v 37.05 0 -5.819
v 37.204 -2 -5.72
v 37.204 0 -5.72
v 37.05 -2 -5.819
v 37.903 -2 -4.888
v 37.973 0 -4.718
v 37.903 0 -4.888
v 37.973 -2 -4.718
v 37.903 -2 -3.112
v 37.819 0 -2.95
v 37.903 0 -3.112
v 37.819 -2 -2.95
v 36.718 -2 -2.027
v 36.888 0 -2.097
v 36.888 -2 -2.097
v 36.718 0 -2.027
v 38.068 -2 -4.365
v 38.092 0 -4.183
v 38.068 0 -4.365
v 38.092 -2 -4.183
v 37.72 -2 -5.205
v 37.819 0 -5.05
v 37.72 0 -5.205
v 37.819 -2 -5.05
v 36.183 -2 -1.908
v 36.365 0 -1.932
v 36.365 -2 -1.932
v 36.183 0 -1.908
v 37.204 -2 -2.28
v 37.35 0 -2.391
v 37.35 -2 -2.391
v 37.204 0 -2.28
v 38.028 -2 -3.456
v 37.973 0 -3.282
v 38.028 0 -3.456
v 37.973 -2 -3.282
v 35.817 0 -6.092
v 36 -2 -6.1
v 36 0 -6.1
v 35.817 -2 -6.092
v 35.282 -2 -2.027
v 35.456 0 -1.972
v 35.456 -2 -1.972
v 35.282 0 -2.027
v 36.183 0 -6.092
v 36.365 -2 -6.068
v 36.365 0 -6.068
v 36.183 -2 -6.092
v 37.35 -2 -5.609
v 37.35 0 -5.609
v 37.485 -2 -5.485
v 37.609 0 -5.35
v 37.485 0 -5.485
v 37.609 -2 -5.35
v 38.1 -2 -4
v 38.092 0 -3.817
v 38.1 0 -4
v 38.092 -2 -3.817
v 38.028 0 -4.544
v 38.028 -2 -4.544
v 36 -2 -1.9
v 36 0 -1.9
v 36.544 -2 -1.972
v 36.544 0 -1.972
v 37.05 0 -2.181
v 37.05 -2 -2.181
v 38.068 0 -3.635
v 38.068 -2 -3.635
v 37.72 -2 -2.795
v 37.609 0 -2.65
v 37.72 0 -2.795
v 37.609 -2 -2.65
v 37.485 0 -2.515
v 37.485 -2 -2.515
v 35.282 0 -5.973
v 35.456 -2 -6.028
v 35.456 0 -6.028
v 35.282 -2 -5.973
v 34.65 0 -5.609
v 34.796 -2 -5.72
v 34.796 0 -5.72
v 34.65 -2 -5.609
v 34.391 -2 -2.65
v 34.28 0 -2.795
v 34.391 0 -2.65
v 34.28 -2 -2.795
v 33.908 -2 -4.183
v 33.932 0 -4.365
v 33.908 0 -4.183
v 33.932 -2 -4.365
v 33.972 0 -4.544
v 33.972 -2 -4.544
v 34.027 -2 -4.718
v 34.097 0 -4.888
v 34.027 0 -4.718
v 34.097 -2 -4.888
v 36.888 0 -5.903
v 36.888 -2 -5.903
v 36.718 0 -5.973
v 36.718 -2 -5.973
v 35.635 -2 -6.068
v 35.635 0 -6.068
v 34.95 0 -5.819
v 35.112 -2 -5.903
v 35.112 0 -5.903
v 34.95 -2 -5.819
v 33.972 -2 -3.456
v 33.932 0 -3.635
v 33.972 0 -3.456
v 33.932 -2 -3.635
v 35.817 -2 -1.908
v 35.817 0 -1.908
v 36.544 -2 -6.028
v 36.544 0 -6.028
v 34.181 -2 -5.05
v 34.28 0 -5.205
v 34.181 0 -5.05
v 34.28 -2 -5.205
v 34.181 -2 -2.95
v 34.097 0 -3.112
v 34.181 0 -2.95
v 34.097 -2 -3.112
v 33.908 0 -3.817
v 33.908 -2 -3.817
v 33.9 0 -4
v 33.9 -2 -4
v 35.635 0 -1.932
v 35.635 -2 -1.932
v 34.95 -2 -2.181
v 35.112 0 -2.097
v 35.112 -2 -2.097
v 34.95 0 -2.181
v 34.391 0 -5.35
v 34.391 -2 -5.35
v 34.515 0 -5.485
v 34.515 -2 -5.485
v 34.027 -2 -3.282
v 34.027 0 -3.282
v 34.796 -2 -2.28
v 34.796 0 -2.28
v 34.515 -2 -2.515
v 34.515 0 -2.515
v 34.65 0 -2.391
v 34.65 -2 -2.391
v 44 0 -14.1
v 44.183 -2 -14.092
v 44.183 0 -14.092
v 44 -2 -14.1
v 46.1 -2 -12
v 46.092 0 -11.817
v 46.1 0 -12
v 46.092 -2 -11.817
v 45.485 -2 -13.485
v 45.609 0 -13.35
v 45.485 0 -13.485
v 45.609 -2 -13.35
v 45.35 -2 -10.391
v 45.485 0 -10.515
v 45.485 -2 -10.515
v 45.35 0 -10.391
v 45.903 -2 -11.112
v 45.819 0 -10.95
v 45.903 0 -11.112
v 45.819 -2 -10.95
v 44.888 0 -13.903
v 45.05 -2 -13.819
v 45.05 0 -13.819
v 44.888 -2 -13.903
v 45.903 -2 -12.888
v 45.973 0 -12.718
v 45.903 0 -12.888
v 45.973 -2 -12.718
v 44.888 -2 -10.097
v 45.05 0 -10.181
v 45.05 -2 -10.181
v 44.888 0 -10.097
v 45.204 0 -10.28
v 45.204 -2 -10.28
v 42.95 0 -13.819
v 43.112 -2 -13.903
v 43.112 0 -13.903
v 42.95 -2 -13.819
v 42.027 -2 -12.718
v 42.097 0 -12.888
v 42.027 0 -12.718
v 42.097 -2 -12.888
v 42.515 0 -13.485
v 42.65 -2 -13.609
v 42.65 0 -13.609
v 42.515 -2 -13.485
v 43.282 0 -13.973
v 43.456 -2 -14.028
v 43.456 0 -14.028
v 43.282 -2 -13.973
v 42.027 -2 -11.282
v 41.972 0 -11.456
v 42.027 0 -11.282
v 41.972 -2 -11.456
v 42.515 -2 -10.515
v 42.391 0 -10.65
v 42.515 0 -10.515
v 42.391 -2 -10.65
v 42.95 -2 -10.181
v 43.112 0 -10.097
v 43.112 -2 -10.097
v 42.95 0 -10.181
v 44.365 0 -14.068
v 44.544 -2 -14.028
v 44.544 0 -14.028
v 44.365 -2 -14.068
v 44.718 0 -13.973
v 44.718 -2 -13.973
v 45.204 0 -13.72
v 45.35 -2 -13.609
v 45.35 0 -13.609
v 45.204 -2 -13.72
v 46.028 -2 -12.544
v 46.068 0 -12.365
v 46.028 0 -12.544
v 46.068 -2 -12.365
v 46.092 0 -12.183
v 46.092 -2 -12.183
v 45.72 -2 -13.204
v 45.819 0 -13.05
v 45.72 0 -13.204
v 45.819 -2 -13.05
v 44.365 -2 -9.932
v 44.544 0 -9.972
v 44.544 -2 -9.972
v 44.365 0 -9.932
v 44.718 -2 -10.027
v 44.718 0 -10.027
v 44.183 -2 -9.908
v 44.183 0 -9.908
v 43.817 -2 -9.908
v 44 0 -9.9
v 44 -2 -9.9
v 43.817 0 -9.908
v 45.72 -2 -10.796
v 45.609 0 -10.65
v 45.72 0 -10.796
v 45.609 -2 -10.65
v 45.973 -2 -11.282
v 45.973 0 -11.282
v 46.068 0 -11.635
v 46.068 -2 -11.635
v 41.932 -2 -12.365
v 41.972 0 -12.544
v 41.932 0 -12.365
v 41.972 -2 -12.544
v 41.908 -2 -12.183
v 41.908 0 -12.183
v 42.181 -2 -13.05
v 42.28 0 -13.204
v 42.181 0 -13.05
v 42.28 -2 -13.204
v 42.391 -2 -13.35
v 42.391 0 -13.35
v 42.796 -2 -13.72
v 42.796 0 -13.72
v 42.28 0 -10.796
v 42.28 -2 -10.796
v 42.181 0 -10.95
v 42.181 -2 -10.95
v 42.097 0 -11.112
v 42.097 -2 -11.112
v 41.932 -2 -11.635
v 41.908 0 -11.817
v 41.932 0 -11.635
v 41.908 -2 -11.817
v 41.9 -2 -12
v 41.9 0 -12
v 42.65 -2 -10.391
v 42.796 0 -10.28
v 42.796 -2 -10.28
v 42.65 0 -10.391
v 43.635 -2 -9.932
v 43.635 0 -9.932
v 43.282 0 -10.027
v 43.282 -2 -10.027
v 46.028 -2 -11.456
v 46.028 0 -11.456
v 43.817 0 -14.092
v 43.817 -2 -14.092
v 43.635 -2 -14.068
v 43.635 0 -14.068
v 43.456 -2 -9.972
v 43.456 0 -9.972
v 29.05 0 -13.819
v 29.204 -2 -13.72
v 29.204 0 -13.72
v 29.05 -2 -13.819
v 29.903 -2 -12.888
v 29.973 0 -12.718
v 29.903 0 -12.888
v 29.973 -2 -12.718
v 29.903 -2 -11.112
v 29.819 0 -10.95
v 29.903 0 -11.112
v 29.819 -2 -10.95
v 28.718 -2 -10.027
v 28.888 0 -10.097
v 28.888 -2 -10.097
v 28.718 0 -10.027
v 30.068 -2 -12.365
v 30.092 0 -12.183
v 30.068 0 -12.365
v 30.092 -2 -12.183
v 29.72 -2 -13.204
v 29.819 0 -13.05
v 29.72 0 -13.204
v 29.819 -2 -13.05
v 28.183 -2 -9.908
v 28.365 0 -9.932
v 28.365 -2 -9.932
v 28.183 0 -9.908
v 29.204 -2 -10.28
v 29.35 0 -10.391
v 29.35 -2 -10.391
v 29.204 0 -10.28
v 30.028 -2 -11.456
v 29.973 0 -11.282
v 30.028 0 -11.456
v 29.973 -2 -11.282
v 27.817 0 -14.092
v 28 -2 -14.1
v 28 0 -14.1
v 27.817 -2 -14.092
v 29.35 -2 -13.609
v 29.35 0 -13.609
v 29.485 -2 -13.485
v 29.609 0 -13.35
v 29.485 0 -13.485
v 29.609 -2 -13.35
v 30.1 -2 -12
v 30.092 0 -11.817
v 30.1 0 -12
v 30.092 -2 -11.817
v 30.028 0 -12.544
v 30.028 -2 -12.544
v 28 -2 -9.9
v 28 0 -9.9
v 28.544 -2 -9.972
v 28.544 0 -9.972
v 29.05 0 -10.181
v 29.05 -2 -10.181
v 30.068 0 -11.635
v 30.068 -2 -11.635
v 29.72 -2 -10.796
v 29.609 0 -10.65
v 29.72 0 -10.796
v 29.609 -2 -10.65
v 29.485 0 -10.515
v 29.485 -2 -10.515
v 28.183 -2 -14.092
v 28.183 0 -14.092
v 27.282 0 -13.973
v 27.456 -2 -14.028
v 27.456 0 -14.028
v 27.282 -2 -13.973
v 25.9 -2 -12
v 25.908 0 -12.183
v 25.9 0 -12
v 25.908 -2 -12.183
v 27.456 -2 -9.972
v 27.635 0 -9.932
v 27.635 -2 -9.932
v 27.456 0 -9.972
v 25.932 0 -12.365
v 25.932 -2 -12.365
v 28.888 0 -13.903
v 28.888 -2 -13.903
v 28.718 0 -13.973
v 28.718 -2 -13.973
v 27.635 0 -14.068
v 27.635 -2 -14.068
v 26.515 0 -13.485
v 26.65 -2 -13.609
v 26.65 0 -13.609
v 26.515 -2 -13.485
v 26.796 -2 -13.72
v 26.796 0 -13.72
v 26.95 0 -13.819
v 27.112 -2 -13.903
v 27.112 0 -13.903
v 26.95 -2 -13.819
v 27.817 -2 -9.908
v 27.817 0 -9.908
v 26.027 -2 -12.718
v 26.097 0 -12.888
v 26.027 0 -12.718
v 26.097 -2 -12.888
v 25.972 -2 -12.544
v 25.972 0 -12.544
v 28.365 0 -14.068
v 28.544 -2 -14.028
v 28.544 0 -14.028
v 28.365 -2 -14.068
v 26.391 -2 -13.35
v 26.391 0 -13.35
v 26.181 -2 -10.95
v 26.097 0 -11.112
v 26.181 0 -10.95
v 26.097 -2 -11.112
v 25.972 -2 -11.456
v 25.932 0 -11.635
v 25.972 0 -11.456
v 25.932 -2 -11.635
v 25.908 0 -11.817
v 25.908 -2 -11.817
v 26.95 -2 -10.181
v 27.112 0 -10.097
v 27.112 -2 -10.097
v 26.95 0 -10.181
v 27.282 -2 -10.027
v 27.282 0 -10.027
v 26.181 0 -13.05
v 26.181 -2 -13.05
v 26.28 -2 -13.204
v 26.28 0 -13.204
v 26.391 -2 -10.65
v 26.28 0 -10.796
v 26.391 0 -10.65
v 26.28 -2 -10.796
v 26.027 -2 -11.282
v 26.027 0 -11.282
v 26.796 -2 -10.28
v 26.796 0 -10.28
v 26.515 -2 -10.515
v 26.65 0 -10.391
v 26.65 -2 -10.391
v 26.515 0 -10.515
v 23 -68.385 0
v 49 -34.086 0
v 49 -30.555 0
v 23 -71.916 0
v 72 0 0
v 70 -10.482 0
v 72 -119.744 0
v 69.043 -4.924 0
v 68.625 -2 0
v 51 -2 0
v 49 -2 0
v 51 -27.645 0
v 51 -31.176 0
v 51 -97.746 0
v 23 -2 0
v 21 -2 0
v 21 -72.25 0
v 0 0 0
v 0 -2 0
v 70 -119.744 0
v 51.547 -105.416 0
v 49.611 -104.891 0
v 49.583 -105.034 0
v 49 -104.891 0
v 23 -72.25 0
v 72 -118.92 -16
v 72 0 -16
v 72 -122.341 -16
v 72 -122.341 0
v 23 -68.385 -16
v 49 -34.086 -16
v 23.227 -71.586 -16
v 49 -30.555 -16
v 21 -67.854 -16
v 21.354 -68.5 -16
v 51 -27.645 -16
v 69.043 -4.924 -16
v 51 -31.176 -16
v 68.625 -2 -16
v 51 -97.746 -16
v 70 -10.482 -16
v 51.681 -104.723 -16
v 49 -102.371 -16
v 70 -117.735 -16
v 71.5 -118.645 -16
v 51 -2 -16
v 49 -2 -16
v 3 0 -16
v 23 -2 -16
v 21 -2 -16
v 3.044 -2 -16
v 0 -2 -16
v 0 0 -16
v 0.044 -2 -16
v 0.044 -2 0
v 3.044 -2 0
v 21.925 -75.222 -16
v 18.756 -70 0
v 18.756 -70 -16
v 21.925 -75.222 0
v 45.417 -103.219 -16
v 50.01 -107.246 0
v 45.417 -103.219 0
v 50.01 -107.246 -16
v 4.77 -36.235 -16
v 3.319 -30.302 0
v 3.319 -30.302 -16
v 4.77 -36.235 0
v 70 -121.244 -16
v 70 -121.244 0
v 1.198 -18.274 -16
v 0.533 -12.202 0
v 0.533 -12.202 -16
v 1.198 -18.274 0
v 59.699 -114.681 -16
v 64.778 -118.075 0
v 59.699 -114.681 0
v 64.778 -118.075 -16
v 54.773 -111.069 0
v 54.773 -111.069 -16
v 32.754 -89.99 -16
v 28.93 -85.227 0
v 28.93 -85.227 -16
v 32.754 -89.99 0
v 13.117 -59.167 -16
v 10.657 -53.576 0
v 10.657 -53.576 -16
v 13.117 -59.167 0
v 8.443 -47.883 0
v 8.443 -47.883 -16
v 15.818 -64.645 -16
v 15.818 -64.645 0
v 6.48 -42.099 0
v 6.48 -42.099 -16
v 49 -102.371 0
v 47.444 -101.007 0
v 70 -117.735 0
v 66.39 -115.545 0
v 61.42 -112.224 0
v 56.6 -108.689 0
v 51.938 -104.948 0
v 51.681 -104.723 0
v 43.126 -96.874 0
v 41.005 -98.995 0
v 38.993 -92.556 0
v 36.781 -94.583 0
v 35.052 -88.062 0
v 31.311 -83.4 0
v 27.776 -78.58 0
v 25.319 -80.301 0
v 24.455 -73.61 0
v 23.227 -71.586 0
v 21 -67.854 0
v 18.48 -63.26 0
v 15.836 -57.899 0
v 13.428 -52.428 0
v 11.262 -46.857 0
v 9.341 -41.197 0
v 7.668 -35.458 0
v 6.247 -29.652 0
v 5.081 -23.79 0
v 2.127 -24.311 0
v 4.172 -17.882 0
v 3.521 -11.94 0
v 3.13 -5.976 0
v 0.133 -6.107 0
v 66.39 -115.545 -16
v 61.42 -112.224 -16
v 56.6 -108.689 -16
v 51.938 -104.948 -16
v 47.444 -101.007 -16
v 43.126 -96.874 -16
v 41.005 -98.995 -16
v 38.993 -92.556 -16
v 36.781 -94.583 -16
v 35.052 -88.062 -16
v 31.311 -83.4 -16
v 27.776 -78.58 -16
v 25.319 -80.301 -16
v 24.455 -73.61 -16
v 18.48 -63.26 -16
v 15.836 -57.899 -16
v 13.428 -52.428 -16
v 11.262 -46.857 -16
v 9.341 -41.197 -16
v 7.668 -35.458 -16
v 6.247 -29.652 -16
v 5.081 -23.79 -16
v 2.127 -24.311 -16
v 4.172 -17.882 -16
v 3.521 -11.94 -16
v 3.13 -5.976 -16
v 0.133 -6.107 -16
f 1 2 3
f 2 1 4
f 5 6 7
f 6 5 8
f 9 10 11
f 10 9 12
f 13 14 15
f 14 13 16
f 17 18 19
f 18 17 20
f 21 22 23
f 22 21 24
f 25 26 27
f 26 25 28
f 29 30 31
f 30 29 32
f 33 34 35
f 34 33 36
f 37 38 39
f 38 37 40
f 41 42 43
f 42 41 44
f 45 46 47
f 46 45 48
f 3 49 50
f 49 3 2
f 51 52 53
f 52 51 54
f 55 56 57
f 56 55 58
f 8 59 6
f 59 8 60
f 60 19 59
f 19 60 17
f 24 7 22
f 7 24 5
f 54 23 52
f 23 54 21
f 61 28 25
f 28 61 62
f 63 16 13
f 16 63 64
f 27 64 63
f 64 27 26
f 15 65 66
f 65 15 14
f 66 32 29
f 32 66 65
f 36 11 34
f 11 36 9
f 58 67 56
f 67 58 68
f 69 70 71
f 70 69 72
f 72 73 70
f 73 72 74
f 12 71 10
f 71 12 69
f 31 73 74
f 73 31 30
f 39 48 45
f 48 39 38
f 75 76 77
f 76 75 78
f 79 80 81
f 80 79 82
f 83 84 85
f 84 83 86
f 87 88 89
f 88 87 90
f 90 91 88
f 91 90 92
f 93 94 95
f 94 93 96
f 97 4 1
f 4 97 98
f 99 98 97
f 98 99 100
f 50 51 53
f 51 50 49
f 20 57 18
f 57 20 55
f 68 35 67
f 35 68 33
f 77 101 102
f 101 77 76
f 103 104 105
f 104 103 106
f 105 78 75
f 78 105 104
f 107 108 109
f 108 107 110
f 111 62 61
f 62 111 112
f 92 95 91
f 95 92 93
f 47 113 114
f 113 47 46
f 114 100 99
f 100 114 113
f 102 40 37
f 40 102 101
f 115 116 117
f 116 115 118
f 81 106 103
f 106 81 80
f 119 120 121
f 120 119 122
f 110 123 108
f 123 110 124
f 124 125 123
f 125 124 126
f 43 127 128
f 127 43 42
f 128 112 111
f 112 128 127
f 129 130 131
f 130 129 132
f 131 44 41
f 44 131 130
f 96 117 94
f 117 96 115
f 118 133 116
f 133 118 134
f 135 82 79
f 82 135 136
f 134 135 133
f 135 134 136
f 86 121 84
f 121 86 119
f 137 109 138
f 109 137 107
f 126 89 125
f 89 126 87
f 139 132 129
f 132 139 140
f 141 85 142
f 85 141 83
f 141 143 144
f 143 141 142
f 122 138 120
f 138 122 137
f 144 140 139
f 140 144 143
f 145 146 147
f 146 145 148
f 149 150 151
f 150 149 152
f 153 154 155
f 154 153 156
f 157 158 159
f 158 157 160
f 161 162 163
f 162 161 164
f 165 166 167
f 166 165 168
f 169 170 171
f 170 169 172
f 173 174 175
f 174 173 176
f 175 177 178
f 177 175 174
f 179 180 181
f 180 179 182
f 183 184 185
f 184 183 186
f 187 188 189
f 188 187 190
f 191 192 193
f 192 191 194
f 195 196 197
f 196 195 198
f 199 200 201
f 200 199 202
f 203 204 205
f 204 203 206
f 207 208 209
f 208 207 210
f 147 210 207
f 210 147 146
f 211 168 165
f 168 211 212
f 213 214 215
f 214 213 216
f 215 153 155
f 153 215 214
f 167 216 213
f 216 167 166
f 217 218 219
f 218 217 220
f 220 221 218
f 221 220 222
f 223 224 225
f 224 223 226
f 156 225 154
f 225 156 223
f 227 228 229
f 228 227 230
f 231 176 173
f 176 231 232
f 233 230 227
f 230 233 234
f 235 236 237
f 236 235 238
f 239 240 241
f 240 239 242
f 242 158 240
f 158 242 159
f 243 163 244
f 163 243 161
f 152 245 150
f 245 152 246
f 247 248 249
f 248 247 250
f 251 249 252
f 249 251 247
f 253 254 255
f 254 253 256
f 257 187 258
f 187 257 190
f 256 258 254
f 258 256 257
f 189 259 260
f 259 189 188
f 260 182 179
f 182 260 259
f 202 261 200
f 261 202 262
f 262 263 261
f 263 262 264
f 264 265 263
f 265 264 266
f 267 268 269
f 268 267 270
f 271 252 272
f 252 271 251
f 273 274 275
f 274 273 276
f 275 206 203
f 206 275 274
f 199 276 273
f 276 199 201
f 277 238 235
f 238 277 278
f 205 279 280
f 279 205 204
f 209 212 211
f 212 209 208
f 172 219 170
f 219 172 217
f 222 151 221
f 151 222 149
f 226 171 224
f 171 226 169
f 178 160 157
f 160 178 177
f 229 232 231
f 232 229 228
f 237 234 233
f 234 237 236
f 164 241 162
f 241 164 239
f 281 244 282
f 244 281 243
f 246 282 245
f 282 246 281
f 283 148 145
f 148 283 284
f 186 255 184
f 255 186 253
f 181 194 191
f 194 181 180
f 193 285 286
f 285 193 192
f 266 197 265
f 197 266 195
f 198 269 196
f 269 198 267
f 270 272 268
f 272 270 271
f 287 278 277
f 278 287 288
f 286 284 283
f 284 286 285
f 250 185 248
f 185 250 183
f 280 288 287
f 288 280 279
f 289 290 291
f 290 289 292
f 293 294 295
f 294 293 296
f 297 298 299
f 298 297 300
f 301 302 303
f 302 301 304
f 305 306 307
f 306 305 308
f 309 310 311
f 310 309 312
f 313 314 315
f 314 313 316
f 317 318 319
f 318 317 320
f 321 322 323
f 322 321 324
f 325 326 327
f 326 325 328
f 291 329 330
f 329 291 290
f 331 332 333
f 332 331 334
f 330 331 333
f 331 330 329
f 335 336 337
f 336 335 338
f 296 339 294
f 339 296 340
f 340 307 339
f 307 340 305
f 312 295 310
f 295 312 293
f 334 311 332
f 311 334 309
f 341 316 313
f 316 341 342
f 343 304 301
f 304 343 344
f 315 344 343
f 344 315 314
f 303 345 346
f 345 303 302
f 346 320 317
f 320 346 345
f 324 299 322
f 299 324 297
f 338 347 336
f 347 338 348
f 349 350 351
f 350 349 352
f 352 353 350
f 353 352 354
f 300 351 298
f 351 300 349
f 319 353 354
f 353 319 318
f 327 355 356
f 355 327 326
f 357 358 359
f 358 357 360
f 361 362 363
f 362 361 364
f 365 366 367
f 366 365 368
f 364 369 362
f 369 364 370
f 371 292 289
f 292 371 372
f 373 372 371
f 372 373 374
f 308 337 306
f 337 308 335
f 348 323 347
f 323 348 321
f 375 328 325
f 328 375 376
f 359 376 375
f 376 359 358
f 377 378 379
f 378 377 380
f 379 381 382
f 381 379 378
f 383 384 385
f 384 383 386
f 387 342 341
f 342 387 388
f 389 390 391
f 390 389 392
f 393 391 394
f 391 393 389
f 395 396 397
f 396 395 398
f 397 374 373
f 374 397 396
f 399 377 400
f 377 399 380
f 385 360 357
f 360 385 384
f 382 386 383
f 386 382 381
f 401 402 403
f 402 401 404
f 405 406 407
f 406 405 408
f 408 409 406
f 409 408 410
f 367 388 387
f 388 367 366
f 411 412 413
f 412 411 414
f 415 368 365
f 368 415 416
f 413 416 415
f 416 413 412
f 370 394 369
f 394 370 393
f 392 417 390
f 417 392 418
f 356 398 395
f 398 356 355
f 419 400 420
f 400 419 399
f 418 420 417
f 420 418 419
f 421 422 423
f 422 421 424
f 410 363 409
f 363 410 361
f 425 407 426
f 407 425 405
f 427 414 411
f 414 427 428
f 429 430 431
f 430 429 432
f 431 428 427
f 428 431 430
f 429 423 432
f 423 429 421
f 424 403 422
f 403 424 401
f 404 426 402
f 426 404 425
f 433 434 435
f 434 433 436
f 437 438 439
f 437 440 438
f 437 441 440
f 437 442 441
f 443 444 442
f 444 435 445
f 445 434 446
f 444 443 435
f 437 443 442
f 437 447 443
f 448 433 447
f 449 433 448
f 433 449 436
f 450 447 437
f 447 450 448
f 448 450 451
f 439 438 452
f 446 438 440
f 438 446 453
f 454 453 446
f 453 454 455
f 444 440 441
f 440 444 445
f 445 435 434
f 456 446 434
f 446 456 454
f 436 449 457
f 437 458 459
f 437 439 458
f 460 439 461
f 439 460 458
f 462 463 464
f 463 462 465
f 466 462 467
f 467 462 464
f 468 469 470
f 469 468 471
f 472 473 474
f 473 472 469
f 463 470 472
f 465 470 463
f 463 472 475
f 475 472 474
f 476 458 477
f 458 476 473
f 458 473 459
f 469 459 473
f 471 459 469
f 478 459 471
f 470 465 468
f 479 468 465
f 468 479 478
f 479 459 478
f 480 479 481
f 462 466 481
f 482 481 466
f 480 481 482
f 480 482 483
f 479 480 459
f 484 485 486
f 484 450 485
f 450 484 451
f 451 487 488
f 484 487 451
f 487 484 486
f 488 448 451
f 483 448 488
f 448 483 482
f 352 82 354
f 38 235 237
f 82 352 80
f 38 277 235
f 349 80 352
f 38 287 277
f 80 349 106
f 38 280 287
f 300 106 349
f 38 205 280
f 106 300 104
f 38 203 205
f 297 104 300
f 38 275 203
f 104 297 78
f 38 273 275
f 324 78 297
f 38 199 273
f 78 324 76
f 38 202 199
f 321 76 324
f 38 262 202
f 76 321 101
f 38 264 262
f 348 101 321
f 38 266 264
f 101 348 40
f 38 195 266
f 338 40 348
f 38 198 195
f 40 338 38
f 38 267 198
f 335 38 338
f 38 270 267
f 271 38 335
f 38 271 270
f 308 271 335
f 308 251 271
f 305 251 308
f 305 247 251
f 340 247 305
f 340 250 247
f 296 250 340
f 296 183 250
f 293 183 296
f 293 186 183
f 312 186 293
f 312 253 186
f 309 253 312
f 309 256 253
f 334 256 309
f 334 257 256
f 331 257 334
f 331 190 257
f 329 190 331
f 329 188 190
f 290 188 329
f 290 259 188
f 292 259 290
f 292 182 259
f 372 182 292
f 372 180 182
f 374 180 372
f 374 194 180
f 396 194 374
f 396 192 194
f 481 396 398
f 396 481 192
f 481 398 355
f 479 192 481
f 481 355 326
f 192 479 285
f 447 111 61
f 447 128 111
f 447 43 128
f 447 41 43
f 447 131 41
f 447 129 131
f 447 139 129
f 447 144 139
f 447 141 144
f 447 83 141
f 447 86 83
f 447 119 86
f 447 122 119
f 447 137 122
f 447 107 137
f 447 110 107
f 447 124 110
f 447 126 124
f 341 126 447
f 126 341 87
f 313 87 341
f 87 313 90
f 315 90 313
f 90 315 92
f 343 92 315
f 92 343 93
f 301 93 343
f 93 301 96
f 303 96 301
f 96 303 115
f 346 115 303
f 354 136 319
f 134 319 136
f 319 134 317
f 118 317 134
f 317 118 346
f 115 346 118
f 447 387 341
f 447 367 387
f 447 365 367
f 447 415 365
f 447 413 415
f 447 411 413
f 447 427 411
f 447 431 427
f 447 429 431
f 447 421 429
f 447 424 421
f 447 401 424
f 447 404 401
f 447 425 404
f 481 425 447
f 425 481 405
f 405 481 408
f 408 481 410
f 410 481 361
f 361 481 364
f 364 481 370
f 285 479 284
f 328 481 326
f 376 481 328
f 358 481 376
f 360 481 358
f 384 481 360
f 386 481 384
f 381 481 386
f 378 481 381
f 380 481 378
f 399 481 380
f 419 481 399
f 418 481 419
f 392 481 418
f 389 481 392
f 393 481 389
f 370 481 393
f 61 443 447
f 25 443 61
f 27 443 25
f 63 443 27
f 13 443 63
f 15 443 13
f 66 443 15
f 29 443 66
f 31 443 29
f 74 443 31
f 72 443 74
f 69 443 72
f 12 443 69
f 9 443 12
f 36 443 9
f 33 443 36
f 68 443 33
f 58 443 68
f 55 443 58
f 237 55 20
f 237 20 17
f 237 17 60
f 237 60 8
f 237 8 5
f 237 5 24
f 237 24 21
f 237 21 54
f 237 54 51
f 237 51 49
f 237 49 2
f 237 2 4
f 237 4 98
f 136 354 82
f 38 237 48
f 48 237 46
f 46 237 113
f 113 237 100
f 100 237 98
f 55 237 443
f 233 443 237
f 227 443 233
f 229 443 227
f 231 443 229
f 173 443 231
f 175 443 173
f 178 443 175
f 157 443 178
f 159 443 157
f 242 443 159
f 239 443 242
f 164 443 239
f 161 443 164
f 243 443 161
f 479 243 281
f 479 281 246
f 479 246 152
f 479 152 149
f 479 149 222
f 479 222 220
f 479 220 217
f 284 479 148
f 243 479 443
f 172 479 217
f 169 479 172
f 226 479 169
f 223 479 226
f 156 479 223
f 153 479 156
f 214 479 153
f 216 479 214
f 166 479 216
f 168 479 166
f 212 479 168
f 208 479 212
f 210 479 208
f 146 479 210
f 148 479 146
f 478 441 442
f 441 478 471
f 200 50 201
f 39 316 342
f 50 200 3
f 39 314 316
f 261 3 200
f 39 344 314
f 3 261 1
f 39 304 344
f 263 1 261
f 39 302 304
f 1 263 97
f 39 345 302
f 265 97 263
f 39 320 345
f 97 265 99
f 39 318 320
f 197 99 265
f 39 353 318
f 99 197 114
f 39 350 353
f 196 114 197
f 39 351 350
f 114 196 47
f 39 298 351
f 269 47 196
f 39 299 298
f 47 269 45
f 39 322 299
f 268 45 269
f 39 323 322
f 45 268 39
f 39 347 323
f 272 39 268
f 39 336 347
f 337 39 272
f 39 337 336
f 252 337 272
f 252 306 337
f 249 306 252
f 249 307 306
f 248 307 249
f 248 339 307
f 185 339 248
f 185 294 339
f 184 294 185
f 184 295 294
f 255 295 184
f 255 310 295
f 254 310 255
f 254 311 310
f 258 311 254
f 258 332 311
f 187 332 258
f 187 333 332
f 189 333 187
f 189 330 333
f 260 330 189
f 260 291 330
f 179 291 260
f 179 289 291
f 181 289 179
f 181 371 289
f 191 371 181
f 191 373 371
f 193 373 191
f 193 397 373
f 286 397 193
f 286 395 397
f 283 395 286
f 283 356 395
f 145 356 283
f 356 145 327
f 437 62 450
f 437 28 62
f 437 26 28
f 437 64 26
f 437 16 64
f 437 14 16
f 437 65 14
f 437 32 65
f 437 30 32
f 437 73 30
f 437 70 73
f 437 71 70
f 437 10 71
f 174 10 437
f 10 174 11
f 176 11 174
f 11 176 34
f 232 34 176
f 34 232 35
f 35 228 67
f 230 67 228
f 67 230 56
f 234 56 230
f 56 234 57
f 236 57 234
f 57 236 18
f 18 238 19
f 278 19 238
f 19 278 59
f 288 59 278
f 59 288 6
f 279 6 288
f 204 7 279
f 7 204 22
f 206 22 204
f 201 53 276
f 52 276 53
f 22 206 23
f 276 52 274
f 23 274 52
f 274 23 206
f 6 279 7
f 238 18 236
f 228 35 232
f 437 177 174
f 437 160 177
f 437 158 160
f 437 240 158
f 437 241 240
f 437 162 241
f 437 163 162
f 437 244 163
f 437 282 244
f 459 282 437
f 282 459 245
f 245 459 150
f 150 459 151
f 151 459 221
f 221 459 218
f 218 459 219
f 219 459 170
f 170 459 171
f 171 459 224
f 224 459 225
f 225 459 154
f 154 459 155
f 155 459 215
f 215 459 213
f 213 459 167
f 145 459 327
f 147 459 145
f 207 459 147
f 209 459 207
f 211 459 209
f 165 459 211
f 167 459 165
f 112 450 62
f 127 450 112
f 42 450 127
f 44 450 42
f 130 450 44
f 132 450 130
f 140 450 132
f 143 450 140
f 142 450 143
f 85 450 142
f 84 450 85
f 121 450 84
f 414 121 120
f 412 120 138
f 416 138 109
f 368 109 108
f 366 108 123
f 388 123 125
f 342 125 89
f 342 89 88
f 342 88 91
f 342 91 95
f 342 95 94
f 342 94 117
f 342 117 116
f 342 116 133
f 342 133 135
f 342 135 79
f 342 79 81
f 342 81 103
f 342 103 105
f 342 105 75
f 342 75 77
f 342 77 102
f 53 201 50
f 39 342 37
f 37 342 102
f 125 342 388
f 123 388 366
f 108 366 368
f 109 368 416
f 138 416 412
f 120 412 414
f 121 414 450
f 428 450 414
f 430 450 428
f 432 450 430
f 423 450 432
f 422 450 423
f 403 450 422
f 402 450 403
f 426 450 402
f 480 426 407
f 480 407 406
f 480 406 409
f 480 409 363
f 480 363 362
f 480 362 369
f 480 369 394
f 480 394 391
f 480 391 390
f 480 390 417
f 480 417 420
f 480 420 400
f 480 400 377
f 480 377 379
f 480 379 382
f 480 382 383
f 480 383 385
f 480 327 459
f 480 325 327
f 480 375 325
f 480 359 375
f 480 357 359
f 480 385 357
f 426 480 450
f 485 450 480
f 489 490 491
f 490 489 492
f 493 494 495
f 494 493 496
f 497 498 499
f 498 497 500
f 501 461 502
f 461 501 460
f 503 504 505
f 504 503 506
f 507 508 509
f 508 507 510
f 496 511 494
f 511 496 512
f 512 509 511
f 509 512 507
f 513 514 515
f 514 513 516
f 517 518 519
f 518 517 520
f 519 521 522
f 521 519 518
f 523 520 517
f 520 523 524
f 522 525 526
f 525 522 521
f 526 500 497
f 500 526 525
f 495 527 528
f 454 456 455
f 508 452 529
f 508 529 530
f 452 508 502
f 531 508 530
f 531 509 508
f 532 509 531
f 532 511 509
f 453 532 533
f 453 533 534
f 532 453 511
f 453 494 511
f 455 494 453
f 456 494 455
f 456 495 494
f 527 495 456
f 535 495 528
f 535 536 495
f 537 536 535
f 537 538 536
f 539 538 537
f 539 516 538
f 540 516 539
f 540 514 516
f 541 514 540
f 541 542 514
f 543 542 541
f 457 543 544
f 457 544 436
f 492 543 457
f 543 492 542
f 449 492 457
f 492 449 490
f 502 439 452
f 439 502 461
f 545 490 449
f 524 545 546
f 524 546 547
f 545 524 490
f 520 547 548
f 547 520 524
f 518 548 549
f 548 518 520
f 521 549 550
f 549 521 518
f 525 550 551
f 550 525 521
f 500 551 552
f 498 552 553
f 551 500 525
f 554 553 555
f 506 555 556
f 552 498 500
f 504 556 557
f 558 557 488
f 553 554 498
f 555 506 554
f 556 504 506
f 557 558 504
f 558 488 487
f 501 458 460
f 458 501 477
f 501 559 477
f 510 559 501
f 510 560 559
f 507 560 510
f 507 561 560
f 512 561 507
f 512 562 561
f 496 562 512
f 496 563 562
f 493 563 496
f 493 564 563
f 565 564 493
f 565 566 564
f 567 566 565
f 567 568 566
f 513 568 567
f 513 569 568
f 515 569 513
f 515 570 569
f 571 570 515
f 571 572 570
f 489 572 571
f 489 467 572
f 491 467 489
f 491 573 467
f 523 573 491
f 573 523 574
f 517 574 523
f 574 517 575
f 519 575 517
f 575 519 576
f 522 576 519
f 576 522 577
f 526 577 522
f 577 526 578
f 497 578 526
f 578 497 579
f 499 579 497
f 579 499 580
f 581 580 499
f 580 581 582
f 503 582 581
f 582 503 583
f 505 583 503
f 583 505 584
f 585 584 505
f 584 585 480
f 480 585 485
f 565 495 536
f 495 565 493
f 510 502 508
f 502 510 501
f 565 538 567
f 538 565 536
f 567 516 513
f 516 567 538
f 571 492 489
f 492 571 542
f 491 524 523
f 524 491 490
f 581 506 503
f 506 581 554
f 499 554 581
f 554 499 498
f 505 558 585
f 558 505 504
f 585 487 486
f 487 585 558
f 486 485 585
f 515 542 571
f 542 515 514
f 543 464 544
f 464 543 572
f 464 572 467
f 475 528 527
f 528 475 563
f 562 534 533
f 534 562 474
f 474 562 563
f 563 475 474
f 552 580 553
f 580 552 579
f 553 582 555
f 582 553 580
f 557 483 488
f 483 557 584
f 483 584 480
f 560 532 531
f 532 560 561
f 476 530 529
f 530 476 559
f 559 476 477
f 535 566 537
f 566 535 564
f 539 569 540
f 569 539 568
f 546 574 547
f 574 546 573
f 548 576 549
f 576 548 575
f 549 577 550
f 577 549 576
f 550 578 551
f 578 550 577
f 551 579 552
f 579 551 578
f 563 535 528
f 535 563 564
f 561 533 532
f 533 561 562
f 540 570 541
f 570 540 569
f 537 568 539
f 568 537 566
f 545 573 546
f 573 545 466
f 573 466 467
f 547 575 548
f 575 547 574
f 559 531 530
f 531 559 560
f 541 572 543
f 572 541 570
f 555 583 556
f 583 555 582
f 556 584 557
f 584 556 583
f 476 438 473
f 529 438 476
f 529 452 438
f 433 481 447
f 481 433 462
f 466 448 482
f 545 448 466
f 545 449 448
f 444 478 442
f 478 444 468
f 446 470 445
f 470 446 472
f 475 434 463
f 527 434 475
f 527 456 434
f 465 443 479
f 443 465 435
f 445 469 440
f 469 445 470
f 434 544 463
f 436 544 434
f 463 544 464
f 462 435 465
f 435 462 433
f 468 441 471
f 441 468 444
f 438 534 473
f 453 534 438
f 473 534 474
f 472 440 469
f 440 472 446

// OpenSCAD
holeDepth = 4;
holeOffset = 8;
holeRadius = 2.1;
holeFacets = 72;

thickness = 2;
bracketWidth = 16;
bracketLength = 72;

railLength=120;
railRadius = 140;
railThickness = 3;
railFacets = 144;



scaleFactor = 1;
rotate([0,90,0])
union() {
   translate([0,-thickness, 0])
        Bracket();
    Top(bracketLength - thickness);
    Top(21);
    Top(49);
    
    translate([0, 0, bracketLength-thickness])
        rotate([34.5,0,0])
            translate([0,-86,0])
                cube([bracketWidth, 86, thickness]);
    
    translate([0, 0, bracketLength-thickness])
        rotate([11,0,0])
            translate([0,-107,0])
                cube([bracketWidth, 107, thickness]);
    Rail();

}

module Bracket() {
    difference() {
        cube([bracketWidth, thickness, bracketLength]);   
    
        translate([10+(bracketWidth-12)/2,
                  thickness/2, bracketLength/2])
            rotate([90,0,0])
                Holes();
    }
}

module Top(z) {
    topLength = sqrt(railRadius * railRadius -
                 (railRadius - z) *
                 (railRadius - z));
    echo(topLength);
    translate([0, -(topLength-railThickness/2), z])
    cube([bracketWidth, topLength-railThickness/2, thickness]);
}

module Rail() {
    intersection() {
        translate([-1,-railRadius,0])
        cube([bracketWidth+2,railRadius,bracketLength]);
        translate([0,0,railRadius])
            rotate([0,90,0])
            difference() {
                cylinder(r = railRadius,
                         h = bracketWidth, $fn = railFacets);
                translate([0,0,-bracketWidth])
                    cylinder(r = railRadius - railThickness,
                          h =  3*bracketWidth, $fn = railFacets);
        }
    }
}

module Holes() {
  //  translate([holeOffset,0,0])
       // cylinder(r=holeRadius,h=holeDepth,
               //  center=true, $fn=holeFacets);
    translate([-holeOffset,0,0])
        cylinder(r=holeRadius,h=holeDepth,
                 center=true, $fn=holeFacets);
    translate([0,holeOffset,0])
        cylinder(r=holeRadius,h=holeDepth,
                 center=true, $fn=holeFacets);
    translate([0,-holeOffset,0])
        cylinder(r=holeRadius,h=holeDepth,
                 center=true, $fn=holeFacets);
}
